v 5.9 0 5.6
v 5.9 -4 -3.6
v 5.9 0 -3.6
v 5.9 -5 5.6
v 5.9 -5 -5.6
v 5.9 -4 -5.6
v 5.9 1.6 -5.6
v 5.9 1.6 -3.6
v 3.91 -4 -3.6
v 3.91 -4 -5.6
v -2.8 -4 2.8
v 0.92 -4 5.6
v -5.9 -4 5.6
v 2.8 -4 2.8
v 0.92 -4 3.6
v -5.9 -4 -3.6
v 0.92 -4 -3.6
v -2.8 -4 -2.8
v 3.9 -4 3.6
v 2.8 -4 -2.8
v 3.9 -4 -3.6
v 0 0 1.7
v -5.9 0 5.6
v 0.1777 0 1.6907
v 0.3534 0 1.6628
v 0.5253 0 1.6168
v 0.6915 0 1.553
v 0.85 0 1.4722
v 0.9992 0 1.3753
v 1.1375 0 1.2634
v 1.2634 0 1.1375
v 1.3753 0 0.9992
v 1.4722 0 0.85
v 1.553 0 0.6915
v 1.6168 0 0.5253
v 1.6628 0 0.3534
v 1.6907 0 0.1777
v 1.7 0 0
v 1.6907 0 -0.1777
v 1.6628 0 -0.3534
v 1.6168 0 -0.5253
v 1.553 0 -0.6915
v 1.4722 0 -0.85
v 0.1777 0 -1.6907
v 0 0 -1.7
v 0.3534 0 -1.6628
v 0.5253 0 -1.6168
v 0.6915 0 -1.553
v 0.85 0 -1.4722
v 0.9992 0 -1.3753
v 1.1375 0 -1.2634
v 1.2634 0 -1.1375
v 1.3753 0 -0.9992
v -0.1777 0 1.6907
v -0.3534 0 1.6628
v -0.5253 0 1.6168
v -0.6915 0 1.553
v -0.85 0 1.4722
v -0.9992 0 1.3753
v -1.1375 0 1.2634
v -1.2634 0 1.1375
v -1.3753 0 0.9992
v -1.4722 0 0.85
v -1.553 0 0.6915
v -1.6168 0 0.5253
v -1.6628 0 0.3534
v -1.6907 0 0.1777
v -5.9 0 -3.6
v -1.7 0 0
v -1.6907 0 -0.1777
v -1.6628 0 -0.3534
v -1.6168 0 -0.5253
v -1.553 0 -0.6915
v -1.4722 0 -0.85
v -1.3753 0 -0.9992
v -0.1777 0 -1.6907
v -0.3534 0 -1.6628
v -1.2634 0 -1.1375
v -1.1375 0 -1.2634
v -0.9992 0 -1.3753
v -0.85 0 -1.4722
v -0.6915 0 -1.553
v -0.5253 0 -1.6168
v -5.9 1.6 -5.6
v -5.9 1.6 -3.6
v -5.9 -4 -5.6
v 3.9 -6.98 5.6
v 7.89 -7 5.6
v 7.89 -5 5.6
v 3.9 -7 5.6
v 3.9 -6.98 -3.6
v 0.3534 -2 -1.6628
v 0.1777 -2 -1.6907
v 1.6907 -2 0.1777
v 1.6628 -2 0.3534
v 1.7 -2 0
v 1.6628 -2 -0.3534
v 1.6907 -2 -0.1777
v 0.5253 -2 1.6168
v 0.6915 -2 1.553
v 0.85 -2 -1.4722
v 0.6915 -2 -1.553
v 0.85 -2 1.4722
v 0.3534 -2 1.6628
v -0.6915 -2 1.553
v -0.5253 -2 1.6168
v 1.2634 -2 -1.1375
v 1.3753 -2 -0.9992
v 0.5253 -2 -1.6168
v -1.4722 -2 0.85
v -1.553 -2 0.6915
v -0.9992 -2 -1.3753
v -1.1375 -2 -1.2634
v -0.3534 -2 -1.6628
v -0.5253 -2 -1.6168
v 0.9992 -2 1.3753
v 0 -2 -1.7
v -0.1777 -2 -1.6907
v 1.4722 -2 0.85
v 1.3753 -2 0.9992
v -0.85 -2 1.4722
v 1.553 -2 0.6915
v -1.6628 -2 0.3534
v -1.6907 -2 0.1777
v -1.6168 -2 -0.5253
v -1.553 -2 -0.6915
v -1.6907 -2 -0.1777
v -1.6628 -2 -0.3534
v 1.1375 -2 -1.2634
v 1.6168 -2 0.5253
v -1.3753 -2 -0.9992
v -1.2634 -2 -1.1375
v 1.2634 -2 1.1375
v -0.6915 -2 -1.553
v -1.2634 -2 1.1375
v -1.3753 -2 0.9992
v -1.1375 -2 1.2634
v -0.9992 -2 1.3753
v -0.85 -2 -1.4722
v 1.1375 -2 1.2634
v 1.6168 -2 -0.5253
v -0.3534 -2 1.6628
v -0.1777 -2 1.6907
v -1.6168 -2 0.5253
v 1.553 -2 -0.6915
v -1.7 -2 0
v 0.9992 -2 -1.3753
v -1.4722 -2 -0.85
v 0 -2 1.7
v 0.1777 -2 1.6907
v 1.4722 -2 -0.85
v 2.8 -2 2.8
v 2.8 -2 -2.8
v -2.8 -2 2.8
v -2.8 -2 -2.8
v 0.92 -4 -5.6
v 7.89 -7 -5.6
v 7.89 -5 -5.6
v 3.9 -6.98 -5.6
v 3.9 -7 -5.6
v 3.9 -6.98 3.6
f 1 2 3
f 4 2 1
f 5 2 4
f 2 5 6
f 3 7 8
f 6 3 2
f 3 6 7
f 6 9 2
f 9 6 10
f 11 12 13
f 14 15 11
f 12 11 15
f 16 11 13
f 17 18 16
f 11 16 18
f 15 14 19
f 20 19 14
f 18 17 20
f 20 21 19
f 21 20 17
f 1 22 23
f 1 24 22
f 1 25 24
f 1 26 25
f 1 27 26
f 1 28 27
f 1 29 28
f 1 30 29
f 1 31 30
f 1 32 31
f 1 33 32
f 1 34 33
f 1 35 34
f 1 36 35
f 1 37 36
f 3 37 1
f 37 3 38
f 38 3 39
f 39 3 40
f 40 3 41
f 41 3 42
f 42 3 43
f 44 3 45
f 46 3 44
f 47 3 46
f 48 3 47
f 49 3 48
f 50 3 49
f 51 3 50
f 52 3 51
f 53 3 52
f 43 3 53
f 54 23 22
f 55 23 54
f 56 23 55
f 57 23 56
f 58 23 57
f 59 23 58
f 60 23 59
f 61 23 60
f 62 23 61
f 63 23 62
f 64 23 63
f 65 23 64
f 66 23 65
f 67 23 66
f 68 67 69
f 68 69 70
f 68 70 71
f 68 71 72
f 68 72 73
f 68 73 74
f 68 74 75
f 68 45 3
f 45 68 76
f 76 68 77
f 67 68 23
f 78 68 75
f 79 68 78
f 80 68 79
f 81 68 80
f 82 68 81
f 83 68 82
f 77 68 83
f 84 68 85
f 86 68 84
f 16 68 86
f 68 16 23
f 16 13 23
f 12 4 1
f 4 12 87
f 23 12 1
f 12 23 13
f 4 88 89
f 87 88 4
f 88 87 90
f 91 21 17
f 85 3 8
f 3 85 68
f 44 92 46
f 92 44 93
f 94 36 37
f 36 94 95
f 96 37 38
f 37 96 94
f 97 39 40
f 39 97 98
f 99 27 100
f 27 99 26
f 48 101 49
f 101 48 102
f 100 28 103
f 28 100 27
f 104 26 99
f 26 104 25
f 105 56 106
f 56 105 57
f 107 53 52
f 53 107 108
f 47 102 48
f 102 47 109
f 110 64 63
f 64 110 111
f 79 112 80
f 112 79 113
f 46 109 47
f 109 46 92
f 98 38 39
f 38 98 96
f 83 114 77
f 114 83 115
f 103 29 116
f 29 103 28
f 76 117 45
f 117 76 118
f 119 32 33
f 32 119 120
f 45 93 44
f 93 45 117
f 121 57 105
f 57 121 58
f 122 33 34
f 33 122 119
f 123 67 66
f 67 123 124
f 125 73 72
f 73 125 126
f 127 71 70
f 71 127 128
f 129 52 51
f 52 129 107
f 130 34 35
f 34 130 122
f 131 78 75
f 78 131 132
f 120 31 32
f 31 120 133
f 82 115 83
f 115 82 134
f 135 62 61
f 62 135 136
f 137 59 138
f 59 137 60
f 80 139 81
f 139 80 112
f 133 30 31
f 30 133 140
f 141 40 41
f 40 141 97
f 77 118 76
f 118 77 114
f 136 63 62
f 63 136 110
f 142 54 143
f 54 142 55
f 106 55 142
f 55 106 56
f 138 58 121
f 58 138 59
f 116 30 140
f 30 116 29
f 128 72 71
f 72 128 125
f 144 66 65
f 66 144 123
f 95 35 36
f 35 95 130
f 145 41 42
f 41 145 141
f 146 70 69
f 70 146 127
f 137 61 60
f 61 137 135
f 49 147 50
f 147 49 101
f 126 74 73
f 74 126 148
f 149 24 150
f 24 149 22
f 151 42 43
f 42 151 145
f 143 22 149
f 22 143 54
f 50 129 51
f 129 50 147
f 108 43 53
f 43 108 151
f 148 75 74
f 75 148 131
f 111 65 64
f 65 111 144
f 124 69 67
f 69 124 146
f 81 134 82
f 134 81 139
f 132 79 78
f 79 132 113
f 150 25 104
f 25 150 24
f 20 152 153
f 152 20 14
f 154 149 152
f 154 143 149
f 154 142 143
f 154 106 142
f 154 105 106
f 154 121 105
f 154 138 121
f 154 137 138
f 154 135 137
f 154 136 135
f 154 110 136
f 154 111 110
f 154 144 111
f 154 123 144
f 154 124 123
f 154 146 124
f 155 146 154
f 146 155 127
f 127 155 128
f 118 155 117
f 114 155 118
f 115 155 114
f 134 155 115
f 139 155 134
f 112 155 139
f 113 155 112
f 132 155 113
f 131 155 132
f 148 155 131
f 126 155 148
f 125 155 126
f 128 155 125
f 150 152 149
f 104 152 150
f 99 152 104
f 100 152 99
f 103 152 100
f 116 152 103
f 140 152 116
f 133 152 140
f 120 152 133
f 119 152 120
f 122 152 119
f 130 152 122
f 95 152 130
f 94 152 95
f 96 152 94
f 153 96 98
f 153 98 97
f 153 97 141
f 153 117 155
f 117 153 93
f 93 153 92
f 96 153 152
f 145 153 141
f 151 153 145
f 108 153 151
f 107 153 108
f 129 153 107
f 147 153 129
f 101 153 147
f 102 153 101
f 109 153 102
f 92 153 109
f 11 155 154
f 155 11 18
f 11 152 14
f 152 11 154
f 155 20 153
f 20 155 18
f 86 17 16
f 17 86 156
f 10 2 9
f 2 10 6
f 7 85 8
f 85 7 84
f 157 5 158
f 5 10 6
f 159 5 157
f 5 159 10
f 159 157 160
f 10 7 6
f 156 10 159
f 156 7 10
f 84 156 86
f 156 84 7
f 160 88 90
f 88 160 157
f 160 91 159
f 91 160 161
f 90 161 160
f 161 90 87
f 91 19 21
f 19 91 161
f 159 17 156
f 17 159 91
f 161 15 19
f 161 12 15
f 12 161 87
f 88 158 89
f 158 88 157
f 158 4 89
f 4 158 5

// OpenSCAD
plate_w = 11.8;
plate_d = 3.6 * 2;
plate_h = 4;

// M3 screw hole (diameter)
screw_hole_w = 3.4;

nut_w = 5.6; // square nuts are 5x5 mm, leave a bit extra for clearance
nut_h = 2;

lip_d = 2;

pcb_thickness = 1.6;

// height of rectangular plastic housing of the 40x2 female right angle header
connector_h = 5;

clip_wall_w = 2;
clip_wall_d = plate_d + 2*lip_d;
clip_wall_h = connector_h - plate_h + lip_d;

overhang_w = lip_d;
overhang_d = clip_wall_d;

module plate() {
    translate([-plate_w/2, -plate_d/2, 0]) {
        cube([plate_w, plate_d+lip_d, plate_h]);
    }
}

module plate_with_screw_hole() {
    difference() {
        plate();
        
        translate([0, 0, -1]) {
            cylinder(r=screw_hole_w/2, h=plate_h + 2, $fn=60);
        }
        
        translate([-nut_w/2, -nut_w/2, plate_h - nut_h]) {
            cube([nut_w, nut_w, nut_h+1]);
        }
    }
}

// this is the lip connected to the plate that overhangs the bottom edge
// of the PCB and helps the bracket to stay in place snugly
module lip() {
    translate([-plate_w/2, -lip_d/2, 0]) {
        cube([plate_w, lip_d, plate_h + pcb_thickness]);
    }
}

module clip_wall() {
    translate([-clip_wall_w/2, -clip_wall_d/2, 0]) {
        cube([clip_wall_w, clip_wall_d, clip_wall_h]);
    }
}

// See: https://en.wikibooks.org/wiki/OpenSCAD_User_Manual/Primitive_Solids
module prism(l, w, h){
   polyhedron(
       points=[[0,0,0], [l,0,0], [l,w,0], [0,w,0], [0,w,h], [l,w,h]],
       faces=[[0,1,2,3],[5,4,3,2],[0,4,5,1],[0,3,4],[5,2,1]]
   );
/*   
   // preview unfolded (do not include in your function
   z = 0.08;
   separation = 2;
   border = .2;
   translate([0,w+separation,0])
       cube([l,w,z]);
   translate([0,w+separation+w+border,0])
       cube([l,h,z]);
   translate([0,w+separation+w+border+h+border,0])
       cube([l,sqrt(w*w+h*h),z]);
   translate([l+border,w+separation+w+border+h+border,0])
       polyhedron(
           points=[[0,0,0],[h,0,0],[0,sqrt(w*w+h*h),0], [0,0,z],[h,0,z],[0,sqrt(w*w+h*h),z]],
           faces=[[0,1,2], [3,5,4], [0,3,4,1], [1,4,5,2], [2,5,3,0]]
       );
   translate([0-border,w+separation+w+border+h+border,0])
       polyhedron(
           points=[[0,0,0],[0-h,0,0],[0,sqrt(w*w+h*h),0], [0,0,z],[0-h,0,z],[0,sqrt(w*w+h*h),z]],
           faces=[[1,0,2],[5,3,4],[0,1,4,3],[1,2,5,4],[2,0,3,5]]
       );
   */
}

module clip_wall_brace() {
    rotate([0, 0, -90]) {
        prism(l=lip_d, w=clip_wall_h, h=clip_wall_h);
    }
}

module clip_overhang() {
    translate([-overhang_w/2, -overhang_d/2, 0]) {
        cube([overhang_w, overhang_d, overhang_w]);
    }
}

// this is the left bracket, mirror for the right bracket
module left_bracket() {
    plate_with_screw_hole();
    translate([0, -plate_d/2 - lip_d/2, -pcb_thickness]) {
        lip();
    }
    translate([plate_w/2 - clip_wall_w/2, 0, plate_h]) {
        clip_wall();
    }
    translate([plate_w/2 - clip_wall_w - clip_wall_h + 0.01, -plate_d/2, plate_h-0.01]) {
        clip_wall_brace();
    }
    translate([plate_w/2 - clip_wall_w - clip_wall_h + 0.01, plate_d/2+lip_d, plate_h-0.01]) {
        clip_wall_brace();
    }
    translate([plate_w/2 + overhang_w/2 - 0.01, 0, connector_h]) {
        clip_overhang();
    }
}

module right_bracket() {
    mirror([1, 0, 0]) {
        left_bracket();
    }
}

// the brackets seem to print fine without supports
// (I guess because the overhangs are small)

rotate([90, 0, 0]) {
    left_bracket();
}

//rotate([90, 0, 0]) {
//    right_bracket();
//}
